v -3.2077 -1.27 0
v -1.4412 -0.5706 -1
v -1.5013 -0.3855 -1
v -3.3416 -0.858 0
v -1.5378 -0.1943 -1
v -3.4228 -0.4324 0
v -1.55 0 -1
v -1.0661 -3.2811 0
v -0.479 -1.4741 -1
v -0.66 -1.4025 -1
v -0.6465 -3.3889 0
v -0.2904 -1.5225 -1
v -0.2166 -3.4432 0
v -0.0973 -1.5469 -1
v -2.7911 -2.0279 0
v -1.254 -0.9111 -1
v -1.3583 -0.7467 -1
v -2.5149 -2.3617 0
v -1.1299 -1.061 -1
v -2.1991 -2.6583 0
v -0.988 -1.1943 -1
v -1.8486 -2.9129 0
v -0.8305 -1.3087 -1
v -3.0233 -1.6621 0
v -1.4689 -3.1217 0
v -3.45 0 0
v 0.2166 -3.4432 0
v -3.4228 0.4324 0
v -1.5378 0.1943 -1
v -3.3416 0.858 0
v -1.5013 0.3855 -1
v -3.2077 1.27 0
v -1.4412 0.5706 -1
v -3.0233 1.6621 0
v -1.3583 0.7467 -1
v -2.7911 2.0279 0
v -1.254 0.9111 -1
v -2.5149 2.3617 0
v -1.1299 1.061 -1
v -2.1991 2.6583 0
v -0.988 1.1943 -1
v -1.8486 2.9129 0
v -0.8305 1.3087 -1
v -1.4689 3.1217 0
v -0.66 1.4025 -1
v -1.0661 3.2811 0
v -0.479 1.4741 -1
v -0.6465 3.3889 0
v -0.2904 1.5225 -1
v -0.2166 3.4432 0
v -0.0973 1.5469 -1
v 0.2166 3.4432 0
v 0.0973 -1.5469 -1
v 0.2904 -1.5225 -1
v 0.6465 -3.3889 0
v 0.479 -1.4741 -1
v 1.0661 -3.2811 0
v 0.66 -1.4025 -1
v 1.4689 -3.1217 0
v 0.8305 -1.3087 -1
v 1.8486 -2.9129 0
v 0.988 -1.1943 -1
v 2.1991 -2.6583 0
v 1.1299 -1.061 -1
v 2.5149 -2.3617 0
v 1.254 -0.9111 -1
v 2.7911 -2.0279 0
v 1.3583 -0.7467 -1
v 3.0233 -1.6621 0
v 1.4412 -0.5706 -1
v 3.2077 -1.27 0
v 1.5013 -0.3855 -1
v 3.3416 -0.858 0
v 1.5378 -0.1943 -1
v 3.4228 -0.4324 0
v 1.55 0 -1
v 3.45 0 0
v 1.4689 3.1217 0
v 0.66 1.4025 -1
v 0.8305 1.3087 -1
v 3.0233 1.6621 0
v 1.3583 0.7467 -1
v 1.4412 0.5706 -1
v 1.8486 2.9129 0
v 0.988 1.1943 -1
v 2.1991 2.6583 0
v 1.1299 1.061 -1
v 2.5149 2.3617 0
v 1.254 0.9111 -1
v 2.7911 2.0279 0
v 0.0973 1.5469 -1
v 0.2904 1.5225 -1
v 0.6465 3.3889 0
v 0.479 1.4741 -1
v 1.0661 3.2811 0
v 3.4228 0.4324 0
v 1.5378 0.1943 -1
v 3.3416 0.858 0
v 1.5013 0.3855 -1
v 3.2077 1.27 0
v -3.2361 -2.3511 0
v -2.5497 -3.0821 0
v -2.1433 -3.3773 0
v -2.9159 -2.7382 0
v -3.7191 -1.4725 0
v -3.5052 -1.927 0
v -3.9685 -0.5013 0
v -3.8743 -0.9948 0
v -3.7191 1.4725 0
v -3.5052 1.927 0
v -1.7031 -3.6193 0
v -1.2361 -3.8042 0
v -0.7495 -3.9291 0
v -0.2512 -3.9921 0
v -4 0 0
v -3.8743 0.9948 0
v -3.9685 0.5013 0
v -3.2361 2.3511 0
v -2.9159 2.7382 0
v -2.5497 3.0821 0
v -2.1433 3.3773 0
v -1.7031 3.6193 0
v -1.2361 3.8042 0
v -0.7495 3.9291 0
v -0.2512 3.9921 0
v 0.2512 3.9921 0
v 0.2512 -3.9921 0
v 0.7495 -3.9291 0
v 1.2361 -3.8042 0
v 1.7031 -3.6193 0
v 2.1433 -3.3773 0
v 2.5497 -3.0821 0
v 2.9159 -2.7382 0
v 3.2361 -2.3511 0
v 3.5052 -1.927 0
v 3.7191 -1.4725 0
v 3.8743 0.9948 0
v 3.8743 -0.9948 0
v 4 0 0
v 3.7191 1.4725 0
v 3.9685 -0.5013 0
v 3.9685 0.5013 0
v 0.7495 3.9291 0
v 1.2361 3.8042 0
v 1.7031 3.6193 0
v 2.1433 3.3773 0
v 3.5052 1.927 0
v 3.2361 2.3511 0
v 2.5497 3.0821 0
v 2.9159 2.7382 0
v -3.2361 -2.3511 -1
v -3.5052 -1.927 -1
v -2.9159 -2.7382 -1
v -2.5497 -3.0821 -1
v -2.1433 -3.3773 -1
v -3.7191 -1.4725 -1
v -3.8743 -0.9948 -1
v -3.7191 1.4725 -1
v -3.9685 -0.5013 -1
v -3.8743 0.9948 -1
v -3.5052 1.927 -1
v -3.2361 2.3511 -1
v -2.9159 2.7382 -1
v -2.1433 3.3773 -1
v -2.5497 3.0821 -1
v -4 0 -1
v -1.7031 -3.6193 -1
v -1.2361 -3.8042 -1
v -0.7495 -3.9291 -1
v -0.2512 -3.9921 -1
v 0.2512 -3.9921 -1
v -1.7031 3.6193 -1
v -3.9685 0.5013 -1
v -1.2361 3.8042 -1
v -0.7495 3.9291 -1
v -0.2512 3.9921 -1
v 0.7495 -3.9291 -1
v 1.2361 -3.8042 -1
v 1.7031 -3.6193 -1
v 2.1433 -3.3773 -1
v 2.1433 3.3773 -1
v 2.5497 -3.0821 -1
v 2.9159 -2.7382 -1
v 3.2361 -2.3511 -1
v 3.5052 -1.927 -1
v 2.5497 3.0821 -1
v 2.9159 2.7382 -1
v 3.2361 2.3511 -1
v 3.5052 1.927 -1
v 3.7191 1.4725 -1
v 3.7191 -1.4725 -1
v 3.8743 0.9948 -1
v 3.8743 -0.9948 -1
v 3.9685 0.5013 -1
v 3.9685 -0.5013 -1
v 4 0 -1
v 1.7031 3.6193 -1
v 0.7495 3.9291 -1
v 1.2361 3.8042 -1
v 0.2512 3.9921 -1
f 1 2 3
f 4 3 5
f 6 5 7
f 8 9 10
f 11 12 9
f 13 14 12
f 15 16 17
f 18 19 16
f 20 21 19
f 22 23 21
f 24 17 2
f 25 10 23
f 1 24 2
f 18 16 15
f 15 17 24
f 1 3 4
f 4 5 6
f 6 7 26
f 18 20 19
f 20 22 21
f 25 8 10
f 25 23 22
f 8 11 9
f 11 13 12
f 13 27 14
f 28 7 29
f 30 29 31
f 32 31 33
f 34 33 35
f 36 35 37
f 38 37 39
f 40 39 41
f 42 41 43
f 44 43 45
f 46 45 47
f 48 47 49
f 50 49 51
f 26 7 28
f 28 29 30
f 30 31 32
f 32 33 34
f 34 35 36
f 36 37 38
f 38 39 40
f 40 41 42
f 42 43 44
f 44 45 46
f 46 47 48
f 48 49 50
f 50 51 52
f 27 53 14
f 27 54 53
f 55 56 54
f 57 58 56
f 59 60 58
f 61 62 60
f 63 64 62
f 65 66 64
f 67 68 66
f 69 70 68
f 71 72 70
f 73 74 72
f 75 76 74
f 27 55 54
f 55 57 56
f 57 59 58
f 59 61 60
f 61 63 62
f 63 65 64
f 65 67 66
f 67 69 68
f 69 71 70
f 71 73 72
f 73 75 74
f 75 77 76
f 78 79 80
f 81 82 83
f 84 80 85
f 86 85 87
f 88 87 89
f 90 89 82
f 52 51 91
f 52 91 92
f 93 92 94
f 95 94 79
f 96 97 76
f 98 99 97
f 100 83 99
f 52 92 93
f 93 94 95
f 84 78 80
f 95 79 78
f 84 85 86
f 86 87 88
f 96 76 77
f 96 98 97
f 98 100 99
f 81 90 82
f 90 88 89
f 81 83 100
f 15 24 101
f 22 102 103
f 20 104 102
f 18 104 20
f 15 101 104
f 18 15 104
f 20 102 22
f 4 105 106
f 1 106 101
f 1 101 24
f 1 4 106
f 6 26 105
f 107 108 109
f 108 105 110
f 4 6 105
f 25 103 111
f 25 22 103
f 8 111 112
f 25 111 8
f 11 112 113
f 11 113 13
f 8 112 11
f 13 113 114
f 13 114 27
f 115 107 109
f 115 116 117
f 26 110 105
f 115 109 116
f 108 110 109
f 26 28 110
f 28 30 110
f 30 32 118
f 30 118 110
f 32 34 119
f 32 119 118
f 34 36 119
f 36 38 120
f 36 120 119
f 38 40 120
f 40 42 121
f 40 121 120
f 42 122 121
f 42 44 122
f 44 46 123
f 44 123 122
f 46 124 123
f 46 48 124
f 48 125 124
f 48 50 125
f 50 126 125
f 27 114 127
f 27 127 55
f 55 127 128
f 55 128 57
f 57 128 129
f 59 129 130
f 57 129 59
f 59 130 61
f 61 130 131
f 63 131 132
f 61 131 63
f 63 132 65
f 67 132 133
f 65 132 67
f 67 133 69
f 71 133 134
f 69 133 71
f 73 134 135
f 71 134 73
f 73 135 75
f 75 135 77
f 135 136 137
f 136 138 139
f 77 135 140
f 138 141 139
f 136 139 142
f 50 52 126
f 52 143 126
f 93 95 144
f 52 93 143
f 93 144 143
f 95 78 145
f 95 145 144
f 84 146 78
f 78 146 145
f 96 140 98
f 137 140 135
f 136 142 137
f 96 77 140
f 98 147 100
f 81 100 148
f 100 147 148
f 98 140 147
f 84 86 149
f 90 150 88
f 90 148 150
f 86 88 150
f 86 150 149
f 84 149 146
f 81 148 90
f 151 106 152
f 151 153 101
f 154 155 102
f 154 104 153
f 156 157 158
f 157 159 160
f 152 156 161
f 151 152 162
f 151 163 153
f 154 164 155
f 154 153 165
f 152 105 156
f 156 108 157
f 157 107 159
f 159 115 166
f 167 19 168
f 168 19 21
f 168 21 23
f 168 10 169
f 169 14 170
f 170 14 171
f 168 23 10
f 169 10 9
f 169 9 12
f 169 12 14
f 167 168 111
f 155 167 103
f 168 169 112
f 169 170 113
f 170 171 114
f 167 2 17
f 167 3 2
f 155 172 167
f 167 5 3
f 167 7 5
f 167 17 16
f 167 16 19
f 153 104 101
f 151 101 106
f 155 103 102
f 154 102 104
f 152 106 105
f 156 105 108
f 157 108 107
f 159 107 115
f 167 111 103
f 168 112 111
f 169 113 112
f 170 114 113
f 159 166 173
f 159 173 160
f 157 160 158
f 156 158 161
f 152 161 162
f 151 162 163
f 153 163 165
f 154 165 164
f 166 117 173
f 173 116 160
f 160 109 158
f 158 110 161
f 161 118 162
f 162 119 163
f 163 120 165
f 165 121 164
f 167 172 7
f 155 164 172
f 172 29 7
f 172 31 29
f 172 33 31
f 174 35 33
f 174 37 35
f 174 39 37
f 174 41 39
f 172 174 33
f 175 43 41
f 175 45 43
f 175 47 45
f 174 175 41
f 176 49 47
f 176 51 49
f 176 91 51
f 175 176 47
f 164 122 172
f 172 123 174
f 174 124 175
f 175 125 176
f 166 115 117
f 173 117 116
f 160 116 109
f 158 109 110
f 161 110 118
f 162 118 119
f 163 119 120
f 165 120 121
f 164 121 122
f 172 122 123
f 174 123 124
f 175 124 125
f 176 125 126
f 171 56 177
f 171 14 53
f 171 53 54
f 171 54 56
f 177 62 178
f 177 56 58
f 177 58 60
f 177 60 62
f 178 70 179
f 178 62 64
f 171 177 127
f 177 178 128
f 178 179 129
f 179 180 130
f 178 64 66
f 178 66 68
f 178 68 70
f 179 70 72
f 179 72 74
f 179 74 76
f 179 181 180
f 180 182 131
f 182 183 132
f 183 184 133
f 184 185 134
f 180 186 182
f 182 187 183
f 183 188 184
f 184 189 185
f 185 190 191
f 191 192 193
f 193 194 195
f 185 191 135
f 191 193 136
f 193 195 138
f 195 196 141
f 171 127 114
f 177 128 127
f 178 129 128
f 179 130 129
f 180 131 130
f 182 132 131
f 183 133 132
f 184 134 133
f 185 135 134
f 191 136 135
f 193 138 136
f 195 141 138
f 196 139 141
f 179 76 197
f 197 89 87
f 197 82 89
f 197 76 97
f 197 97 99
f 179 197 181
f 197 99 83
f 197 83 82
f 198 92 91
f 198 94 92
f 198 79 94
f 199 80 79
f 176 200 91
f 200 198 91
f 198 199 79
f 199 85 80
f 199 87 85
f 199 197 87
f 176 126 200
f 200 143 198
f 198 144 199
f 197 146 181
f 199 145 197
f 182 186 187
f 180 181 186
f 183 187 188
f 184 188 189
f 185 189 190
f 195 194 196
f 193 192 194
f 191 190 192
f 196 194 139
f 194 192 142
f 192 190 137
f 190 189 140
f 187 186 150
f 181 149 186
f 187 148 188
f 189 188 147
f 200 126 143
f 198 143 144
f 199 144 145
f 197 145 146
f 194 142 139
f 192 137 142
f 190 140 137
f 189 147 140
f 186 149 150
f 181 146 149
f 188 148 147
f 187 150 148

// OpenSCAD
$fn = 50;

difference() {
	union() {
		translate(v = [0, 0, -1.0]) {
			cylinder(h = 4.0, r = 4.0);
		}
	}
	union() {
		translate(v = [0, 0, 0]) {
			rotate(a = [0, 0, 0]) {
				difference() {
					union() {
						translate(v = [0, 0, -4.0]) {
							cylinder(h = 4.0, r = 1.25);
						}
						translate(v = [0, 0, -1.0]) {
							cylinder(h = 1.0, r1 = 1.55, r2 = 3.45);
						}
						translate(v = [0, 0, -4.0]) {
							cylinder(h = 4.0, r = 1.55);
						}
						translate(v = [0, 0, -4.0]) {
							cylinder(h = 4.0, r = 1.25);
						}
					}
					union();
				}
			}
		}
		#cylinder(h = 3, r = 5.0);
	}
}
